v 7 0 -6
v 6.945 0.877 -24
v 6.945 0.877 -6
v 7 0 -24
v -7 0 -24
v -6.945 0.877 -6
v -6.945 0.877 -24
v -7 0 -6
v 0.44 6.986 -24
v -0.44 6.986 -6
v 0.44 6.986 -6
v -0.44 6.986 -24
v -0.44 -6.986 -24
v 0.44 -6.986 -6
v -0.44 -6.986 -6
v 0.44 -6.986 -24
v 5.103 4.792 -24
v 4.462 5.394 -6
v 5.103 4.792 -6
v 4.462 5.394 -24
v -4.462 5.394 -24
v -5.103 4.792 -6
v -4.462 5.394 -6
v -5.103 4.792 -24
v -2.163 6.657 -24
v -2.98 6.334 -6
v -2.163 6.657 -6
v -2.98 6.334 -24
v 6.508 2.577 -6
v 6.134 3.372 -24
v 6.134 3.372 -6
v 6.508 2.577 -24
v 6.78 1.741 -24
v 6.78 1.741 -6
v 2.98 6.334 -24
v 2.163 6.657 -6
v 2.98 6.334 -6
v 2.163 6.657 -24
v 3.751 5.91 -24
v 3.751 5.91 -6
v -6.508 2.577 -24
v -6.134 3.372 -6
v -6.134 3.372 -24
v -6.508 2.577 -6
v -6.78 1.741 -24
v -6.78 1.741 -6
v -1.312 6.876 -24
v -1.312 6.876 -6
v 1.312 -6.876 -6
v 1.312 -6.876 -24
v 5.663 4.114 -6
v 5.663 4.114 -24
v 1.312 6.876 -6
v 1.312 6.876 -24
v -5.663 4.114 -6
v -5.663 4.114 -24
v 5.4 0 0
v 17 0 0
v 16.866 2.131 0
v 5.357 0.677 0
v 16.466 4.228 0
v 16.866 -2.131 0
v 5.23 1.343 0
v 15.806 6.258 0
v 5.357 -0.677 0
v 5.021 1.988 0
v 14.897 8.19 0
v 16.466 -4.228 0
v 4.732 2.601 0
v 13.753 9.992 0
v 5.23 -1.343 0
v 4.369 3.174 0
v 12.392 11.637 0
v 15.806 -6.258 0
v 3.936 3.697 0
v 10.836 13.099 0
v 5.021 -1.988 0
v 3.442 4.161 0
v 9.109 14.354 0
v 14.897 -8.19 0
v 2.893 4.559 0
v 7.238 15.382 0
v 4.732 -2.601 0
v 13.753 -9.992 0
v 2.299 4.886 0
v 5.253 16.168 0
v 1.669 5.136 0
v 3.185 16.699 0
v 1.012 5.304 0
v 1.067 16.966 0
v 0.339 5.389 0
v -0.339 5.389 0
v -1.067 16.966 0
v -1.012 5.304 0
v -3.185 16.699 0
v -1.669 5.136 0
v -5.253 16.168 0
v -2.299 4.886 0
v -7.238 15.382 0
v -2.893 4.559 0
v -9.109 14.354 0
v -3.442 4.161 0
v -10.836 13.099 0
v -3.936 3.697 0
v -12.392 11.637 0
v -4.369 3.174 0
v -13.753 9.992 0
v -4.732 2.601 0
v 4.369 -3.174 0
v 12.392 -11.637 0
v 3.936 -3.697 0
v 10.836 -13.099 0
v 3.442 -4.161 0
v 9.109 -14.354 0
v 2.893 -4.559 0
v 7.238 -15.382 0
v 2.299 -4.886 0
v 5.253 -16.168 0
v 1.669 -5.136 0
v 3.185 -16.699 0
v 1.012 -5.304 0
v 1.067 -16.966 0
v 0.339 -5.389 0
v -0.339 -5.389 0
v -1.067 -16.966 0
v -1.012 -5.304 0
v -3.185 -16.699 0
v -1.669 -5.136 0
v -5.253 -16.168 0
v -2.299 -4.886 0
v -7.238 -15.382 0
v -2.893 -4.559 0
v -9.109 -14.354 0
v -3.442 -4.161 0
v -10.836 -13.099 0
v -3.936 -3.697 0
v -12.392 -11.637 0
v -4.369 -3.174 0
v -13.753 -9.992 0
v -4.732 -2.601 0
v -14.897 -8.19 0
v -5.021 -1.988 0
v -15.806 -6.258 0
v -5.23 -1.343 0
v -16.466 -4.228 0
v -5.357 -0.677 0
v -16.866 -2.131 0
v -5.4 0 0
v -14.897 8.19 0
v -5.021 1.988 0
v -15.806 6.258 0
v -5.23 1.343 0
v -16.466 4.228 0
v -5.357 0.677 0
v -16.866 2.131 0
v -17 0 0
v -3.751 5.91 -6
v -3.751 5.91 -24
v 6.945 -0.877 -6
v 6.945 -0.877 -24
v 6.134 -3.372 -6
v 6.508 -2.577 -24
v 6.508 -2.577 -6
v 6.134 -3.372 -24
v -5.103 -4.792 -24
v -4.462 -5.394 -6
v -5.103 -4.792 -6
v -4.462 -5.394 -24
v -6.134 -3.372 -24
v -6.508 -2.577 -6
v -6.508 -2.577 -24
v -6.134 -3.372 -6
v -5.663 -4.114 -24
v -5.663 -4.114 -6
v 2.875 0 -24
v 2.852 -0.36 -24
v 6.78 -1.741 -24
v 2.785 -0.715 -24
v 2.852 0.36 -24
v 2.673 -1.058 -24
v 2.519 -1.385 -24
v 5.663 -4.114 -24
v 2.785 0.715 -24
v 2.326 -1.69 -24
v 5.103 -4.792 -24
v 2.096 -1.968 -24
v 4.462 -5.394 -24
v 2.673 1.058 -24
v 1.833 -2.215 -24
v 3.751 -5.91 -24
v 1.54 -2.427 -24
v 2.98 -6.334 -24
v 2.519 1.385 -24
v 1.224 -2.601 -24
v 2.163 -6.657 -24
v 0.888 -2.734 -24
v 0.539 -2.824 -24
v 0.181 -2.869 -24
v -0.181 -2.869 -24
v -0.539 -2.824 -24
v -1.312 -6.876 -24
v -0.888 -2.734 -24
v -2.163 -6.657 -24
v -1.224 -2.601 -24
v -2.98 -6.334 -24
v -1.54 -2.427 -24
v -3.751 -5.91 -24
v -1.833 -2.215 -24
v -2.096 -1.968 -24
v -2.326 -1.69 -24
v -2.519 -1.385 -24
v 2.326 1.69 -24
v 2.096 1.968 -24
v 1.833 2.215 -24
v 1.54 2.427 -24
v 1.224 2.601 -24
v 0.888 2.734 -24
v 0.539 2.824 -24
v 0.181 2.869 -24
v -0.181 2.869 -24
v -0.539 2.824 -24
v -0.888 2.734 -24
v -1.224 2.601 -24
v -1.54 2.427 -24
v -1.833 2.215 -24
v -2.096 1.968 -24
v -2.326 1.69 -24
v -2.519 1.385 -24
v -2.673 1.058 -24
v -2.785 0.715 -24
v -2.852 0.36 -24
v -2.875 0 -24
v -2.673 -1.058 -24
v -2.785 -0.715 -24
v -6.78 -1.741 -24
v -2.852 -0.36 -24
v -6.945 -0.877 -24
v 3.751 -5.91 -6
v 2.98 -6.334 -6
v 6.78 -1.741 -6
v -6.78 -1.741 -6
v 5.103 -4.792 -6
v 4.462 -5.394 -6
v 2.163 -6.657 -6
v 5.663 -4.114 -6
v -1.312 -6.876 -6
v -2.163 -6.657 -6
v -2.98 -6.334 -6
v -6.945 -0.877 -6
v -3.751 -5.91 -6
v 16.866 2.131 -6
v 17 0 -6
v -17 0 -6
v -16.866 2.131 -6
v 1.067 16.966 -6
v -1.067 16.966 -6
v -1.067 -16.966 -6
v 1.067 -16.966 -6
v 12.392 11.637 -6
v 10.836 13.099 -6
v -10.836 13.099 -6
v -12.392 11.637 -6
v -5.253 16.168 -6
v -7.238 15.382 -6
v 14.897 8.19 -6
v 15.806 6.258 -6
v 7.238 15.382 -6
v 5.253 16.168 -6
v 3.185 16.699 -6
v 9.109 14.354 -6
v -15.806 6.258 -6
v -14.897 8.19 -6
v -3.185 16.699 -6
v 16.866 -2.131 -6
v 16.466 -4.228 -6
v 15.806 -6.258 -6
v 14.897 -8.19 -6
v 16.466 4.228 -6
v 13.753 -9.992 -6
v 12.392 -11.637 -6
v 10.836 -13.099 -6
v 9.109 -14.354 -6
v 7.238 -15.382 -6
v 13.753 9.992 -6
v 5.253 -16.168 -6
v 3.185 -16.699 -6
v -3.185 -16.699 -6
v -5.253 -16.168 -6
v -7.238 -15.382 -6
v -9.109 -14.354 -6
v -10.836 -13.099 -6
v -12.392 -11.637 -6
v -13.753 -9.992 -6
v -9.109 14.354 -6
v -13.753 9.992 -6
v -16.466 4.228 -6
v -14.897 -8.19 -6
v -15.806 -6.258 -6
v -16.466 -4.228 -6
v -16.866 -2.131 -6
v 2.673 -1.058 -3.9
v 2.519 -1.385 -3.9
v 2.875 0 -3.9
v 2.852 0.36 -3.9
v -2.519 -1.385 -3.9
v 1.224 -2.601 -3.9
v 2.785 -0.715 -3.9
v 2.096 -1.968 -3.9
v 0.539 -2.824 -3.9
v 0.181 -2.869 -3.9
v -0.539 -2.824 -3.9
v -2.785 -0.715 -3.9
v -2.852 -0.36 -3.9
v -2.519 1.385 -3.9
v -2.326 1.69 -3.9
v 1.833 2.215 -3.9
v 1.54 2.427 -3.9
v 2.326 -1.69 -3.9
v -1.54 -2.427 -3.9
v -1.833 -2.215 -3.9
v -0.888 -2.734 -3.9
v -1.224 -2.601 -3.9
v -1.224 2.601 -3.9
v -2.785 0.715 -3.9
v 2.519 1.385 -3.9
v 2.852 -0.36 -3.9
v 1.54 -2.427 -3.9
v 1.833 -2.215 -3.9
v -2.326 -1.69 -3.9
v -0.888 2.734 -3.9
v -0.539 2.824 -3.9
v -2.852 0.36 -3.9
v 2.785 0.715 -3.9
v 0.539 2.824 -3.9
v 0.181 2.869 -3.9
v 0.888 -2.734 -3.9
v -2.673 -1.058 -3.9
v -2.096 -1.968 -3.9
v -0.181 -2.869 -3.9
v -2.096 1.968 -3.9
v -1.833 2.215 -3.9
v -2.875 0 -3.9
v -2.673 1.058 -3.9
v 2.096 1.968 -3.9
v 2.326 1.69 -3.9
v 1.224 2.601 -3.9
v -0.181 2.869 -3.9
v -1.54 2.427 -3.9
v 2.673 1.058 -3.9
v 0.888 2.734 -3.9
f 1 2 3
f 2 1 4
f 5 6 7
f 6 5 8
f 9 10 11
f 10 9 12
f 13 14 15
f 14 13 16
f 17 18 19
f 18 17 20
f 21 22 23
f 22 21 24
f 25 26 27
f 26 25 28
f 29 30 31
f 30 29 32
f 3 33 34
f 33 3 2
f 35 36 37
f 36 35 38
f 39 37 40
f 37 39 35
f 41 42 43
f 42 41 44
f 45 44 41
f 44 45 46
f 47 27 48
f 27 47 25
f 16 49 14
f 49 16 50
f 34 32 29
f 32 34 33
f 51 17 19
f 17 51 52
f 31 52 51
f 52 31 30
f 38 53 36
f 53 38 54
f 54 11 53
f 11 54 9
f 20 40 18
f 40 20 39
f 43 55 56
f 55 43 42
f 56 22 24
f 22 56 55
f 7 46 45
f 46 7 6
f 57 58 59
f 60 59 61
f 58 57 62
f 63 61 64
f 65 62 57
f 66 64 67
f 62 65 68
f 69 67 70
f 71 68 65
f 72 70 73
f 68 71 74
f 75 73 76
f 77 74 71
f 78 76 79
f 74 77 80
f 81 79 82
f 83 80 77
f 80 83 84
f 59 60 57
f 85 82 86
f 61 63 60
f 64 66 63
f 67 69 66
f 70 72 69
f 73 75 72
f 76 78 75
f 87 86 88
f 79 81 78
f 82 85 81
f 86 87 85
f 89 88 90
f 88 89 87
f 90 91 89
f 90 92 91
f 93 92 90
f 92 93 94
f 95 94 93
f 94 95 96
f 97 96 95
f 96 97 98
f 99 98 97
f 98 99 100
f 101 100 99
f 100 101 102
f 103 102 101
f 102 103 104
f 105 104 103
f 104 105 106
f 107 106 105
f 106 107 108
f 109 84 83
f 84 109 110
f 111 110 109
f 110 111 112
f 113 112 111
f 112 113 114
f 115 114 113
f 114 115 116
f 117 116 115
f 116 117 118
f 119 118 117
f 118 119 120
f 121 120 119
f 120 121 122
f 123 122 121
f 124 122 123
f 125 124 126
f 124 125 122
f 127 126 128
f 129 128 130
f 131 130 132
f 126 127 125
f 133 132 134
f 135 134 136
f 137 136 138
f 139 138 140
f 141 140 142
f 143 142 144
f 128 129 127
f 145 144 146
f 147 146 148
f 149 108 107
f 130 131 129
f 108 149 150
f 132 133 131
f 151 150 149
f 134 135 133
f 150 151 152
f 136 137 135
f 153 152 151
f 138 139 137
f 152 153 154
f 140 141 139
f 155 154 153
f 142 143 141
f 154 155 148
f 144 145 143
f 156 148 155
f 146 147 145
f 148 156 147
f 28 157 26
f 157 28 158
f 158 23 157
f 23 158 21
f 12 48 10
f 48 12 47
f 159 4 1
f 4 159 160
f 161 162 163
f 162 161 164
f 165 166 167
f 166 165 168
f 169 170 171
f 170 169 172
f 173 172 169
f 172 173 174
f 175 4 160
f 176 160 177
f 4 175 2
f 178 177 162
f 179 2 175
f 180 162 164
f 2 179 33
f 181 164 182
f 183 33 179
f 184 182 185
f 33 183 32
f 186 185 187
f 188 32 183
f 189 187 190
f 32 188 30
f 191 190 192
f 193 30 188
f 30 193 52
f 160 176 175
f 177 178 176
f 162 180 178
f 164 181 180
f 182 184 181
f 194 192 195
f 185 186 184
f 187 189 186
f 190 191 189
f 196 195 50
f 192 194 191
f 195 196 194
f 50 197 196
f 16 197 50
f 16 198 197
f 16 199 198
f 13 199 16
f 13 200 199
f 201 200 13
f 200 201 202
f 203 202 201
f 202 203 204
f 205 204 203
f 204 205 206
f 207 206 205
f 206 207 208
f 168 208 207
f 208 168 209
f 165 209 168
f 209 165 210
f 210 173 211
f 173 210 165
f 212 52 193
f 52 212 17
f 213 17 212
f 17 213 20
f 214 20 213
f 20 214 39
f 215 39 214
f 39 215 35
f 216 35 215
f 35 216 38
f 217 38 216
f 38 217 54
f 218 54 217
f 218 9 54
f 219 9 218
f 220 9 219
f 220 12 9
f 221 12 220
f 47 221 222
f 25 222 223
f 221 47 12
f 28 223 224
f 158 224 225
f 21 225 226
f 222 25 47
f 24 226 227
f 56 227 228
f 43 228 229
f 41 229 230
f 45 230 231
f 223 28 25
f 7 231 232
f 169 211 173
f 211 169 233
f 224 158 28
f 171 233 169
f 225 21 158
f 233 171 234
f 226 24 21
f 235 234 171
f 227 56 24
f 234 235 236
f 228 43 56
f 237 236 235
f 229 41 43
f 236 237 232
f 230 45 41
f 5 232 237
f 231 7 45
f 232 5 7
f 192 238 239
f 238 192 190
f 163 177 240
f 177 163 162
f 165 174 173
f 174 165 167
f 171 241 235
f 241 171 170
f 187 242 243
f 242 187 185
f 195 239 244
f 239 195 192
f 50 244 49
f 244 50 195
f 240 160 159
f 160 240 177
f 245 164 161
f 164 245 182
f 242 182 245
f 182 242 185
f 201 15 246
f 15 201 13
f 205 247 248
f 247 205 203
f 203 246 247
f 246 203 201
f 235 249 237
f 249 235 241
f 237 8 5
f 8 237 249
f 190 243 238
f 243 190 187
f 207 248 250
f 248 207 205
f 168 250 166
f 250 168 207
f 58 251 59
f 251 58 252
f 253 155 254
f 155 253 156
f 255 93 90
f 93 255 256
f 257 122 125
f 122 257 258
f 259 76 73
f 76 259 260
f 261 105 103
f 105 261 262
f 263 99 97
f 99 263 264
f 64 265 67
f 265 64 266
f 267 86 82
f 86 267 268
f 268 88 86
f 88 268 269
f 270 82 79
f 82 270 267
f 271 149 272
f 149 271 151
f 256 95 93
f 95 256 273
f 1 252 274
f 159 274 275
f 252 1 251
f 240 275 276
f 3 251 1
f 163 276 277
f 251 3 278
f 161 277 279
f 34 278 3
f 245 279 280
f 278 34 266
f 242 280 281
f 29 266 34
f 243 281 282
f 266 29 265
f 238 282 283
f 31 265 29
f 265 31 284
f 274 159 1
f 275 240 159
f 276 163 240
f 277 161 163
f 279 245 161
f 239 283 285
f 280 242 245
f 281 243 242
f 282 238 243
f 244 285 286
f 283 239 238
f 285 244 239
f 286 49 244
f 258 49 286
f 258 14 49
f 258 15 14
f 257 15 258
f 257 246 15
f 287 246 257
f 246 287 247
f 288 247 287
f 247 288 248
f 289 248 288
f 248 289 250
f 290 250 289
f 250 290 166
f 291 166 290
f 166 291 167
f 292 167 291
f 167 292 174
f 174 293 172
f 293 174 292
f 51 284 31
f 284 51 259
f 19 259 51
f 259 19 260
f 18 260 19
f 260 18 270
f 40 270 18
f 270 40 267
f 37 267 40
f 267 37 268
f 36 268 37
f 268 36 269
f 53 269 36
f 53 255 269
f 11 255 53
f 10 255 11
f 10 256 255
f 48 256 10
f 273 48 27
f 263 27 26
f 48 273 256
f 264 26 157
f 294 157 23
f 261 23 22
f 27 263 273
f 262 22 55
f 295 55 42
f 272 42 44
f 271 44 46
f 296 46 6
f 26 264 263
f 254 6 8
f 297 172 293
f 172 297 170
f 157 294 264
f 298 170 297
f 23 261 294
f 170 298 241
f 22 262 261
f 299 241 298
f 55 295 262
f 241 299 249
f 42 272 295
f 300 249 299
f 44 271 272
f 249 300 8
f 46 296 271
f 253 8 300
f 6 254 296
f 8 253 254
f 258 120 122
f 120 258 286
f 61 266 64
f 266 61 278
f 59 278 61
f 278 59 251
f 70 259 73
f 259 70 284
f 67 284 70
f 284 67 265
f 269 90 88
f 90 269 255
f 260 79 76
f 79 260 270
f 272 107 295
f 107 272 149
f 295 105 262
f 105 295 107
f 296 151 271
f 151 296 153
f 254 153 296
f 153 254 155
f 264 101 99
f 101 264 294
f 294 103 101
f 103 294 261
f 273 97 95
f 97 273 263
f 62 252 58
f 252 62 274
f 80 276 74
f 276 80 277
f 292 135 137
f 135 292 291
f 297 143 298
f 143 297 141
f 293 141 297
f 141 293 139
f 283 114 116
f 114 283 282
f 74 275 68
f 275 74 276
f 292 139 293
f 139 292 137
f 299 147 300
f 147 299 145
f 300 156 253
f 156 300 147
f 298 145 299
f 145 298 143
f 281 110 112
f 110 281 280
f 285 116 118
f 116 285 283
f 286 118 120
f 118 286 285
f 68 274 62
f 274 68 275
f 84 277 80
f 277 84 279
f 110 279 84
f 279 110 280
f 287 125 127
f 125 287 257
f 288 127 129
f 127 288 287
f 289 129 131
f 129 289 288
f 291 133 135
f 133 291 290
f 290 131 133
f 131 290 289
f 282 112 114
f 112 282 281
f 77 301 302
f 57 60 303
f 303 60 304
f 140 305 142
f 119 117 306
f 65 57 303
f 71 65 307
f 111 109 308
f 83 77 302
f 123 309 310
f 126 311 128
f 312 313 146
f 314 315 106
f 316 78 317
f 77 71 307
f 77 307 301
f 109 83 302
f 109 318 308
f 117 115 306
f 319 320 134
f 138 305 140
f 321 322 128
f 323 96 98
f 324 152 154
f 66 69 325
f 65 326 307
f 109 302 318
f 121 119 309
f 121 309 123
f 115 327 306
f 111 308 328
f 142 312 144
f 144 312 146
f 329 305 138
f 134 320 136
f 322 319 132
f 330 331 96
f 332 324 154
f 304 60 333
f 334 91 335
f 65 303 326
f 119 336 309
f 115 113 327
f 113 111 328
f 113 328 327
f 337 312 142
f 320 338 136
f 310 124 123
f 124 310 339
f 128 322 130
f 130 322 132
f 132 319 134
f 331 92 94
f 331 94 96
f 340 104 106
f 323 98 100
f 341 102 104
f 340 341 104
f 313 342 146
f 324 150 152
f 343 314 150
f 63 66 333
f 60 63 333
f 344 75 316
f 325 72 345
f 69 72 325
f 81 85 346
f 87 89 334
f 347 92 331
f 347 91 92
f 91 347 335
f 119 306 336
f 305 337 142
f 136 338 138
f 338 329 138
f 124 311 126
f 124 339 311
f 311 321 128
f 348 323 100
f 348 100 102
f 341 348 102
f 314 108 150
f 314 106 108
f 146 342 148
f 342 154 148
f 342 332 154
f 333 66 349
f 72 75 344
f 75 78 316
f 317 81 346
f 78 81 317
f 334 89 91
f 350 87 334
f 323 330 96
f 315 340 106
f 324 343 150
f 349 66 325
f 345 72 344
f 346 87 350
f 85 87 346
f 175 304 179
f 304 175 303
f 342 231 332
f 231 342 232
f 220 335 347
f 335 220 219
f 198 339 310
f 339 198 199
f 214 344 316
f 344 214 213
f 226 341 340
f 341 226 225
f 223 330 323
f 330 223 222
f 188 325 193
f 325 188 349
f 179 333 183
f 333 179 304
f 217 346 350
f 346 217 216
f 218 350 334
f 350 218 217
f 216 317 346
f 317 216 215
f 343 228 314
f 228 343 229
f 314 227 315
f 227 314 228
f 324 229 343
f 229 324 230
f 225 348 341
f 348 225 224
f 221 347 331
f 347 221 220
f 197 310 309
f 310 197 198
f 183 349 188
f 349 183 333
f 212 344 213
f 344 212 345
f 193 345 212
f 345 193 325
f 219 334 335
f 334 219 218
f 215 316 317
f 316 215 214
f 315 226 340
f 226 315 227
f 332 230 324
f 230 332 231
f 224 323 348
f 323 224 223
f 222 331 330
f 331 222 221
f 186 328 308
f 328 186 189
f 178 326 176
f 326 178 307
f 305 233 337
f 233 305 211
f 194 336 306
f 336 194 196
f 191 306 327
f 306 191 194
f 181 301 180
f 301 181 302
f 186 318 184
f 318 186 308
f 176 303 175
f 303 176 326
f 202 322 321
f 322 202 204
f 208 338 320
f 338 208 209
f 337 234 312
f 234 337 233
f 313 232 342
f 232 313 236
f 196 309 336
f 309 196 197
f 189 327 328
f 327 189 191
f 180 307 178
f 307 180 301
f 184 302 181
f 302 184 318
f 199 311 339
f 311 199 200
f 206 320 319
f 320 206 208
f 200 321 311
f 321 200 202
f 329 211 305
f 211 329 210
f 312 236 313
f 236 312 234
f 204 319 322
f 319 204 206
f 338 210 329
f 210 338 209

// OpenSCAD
$fn = 50;


difference() {
	union() {
		translate(v = [0, 0, -24.0000000000]) {
			cylinder(h = 24, r = 7.0000000000);
		}
		translate(v = [0, 0, -6.0000000000]) {
			cylinder(h = 6, r = 17.0000000000);
		}
	}
	union() {
		translate(v = [0, 0, 0]) {
			rotate(a = [0, 0, 0]) {
				difference() {
					union() {
						#translate(v = [0, 0, -24.0000000000]) {
							cylinder(h = 24, r = 2.6000000000);
						}
						#translate(v = [0, 0, -3.9000000000]) {
							cylinder(h = 3.9000000000, r1 = 2.8750000000, r2 = 5.4000000000);
						}
						#translate(v = [0, 0, -24.0000000000]) {
							cylinder(h = 24, r = 2.8750000000);
						}
						#translate(v = [0, 0, -24.0000000000]) {
							cylinder(h = 24, r = 2.6000000000);
						}
					}
					union();
				}
			}
		}
	}
}
